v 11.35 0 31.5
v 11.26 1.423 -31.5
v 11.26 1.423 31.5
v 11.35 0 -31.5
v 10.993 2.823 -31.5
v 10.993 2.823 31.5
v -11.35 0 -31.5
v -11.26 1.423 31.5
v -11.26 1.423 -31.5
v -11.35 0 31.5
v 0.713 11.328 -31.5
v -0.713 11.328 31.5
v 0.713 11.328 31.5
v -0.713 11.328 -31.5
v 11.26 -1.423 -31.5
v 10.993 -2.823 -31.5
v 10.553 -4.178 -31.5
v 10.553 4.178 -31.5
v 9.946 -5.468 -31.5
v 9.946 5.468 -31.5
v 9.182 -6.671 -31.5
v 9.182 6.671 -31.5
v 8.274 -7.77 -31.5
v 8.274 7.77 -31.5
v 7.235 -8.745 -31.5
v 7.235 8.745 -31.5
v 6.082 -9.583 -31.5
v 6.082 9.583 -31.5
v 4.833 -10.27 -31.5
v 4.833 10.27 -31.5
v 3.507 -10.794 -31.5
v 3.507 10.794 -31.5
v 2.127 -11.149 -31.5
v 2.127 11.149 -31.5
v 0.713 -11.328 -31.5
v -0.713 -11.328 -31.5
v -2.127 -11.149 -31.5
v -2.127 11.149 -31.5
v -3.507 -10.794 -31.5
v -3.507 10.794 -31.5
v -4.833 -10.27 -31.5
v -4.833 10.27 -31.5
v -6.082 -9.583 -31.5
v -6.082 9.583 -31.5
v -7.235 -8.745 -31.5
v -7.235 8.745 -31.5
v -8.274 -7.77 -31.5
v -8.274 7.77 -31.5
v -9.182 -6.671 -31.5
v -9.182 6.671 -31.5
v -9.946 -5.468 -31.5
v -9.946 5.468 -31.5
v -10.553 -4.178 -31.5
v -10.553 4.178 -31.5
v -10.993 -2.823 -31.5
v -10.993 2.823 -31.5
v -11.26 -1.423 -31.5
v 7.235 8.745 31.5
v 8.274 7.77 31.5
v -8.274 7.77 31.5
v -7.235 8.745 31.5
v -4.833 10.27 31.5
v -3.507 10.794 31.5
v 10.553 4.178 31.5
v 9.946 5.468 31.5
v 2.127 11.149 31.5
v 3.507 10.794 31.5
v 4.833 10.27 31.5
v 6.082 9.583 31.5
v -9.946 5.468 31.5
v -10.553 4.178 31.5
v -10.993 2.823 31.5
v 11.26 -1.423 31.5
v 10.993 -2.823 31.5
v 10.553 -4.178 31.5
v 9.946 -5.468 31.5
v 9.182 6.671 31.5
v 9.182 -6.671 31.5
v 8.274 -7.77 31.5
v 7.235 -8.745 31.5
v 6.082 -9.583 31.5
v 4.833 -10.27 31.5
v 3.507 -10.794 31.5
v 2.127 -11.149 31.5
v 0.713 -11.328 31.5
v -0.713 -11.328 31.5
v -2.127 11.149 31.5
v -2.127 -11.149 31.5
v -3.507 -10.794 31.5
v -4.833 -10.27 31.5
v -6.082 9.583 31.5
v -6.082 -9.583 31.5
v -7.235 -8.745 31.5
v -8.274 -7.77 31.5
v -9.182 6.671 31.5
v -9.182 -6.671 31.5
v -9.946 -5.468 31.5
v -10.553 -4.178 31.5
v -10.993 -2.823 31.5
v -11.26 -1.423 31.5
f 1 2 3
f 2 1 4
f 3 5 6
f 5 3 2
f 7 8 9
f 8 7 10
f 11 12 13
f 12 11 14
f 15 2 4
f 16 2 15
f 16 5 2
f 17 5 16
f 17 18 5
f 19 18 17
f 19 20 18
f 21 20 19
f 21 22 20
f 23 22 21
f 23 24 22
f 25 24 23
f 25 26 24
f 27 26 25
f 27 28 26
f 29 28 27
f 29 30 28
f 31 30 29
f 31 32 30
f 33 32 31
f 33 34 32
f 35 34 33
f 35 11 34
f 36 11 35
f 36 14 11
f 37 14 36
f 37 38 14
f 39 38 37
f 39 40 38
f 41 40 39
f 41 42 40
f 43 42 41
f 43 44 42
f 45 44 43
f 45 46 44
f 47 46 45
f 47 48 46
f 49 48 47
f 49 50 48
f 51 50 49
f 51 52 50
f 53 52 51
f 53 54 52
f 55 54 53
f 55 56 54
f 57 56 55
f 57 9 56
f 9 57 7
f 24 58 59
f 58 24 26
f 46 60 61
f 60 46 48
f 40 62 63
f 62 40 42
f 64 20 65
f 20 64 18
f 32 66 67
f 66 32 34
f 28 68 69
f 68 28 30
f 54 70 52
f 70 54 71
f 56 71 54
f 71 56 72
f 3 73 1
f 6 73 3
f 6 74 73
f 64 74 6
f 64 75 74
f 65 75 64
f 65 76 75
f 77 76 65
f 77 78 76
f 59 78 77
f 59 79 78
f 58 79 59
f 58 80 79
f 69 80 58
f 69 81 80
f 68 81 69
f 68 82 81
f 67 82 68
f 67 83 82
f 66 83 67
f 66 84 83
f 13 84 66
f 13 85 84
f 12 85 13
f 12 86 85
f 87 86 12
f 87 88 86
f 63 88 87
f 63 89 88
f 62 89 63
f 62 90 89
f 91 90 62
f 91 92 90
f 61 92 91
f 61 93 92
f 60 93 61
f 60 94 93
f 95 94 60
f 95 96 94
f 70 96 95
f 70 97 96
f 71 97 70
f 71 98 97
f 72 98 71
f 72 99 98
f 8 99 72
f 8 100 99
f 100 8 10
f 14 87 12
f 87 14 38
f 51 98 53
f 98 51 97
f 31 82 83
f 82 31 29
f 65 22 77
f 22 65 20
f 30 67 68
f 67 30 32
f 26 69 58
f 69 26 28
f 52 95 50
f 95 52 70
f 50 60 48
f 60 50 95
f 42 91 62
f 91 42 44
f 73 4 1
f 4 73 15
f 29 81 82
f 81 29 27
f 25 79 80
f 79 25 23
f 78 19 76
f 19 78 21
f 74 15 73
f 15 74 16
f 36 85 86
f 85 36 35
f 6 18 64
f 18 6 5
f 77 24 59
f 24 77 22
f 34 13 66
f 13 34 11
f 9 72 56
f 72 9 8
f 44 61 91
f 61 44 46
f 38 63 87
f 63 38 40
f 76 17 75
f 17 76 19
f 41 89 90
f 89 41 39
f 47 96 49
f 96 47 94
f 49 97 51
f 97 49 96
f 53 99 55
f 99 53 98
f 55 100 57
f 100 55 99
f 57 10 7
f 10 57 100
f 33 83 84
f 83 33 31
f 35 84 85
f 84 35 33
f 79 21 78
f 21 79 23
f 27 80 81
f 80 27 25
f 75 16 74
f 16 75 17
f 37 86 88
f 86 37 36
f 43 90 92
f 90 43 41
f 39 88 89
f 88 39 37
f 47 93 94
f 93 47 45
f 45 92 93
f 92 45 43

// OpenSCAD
$fn = 50;


difference() {
	union() {
		translate(v = [0, 0, -31.5000000000]) {
			cylinder(h = 63, r = 11.3500000000);
		}
	}
	union() {
		translate(v = [0, 0, -100.0000000000]) {
			cylinder(h = 200, r = 0);
		}
	}
}
